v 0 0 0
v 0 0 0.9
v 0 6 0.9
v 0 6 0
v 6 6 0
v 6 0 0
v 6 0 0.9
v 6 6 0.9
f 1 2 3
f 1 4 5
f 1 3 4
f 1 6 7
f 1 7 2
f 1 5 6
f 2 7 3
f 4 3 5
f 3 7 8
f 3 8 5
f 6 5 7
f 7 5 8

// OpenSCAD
/* Warning, this is a very basic generator with a lot of approximation 
input data : [VQFN, PHA, 6x6x0.9mm, 32, , D, C04-01196D]
generated by com.zoubworld.electronics.cad.model3d.Basic
Date : Sun Feb 15 10:50:49 CET 2026
*/

//body
color("black")
translate([0,0,0])
cube([6.0,6.0,0.9], center=false);
